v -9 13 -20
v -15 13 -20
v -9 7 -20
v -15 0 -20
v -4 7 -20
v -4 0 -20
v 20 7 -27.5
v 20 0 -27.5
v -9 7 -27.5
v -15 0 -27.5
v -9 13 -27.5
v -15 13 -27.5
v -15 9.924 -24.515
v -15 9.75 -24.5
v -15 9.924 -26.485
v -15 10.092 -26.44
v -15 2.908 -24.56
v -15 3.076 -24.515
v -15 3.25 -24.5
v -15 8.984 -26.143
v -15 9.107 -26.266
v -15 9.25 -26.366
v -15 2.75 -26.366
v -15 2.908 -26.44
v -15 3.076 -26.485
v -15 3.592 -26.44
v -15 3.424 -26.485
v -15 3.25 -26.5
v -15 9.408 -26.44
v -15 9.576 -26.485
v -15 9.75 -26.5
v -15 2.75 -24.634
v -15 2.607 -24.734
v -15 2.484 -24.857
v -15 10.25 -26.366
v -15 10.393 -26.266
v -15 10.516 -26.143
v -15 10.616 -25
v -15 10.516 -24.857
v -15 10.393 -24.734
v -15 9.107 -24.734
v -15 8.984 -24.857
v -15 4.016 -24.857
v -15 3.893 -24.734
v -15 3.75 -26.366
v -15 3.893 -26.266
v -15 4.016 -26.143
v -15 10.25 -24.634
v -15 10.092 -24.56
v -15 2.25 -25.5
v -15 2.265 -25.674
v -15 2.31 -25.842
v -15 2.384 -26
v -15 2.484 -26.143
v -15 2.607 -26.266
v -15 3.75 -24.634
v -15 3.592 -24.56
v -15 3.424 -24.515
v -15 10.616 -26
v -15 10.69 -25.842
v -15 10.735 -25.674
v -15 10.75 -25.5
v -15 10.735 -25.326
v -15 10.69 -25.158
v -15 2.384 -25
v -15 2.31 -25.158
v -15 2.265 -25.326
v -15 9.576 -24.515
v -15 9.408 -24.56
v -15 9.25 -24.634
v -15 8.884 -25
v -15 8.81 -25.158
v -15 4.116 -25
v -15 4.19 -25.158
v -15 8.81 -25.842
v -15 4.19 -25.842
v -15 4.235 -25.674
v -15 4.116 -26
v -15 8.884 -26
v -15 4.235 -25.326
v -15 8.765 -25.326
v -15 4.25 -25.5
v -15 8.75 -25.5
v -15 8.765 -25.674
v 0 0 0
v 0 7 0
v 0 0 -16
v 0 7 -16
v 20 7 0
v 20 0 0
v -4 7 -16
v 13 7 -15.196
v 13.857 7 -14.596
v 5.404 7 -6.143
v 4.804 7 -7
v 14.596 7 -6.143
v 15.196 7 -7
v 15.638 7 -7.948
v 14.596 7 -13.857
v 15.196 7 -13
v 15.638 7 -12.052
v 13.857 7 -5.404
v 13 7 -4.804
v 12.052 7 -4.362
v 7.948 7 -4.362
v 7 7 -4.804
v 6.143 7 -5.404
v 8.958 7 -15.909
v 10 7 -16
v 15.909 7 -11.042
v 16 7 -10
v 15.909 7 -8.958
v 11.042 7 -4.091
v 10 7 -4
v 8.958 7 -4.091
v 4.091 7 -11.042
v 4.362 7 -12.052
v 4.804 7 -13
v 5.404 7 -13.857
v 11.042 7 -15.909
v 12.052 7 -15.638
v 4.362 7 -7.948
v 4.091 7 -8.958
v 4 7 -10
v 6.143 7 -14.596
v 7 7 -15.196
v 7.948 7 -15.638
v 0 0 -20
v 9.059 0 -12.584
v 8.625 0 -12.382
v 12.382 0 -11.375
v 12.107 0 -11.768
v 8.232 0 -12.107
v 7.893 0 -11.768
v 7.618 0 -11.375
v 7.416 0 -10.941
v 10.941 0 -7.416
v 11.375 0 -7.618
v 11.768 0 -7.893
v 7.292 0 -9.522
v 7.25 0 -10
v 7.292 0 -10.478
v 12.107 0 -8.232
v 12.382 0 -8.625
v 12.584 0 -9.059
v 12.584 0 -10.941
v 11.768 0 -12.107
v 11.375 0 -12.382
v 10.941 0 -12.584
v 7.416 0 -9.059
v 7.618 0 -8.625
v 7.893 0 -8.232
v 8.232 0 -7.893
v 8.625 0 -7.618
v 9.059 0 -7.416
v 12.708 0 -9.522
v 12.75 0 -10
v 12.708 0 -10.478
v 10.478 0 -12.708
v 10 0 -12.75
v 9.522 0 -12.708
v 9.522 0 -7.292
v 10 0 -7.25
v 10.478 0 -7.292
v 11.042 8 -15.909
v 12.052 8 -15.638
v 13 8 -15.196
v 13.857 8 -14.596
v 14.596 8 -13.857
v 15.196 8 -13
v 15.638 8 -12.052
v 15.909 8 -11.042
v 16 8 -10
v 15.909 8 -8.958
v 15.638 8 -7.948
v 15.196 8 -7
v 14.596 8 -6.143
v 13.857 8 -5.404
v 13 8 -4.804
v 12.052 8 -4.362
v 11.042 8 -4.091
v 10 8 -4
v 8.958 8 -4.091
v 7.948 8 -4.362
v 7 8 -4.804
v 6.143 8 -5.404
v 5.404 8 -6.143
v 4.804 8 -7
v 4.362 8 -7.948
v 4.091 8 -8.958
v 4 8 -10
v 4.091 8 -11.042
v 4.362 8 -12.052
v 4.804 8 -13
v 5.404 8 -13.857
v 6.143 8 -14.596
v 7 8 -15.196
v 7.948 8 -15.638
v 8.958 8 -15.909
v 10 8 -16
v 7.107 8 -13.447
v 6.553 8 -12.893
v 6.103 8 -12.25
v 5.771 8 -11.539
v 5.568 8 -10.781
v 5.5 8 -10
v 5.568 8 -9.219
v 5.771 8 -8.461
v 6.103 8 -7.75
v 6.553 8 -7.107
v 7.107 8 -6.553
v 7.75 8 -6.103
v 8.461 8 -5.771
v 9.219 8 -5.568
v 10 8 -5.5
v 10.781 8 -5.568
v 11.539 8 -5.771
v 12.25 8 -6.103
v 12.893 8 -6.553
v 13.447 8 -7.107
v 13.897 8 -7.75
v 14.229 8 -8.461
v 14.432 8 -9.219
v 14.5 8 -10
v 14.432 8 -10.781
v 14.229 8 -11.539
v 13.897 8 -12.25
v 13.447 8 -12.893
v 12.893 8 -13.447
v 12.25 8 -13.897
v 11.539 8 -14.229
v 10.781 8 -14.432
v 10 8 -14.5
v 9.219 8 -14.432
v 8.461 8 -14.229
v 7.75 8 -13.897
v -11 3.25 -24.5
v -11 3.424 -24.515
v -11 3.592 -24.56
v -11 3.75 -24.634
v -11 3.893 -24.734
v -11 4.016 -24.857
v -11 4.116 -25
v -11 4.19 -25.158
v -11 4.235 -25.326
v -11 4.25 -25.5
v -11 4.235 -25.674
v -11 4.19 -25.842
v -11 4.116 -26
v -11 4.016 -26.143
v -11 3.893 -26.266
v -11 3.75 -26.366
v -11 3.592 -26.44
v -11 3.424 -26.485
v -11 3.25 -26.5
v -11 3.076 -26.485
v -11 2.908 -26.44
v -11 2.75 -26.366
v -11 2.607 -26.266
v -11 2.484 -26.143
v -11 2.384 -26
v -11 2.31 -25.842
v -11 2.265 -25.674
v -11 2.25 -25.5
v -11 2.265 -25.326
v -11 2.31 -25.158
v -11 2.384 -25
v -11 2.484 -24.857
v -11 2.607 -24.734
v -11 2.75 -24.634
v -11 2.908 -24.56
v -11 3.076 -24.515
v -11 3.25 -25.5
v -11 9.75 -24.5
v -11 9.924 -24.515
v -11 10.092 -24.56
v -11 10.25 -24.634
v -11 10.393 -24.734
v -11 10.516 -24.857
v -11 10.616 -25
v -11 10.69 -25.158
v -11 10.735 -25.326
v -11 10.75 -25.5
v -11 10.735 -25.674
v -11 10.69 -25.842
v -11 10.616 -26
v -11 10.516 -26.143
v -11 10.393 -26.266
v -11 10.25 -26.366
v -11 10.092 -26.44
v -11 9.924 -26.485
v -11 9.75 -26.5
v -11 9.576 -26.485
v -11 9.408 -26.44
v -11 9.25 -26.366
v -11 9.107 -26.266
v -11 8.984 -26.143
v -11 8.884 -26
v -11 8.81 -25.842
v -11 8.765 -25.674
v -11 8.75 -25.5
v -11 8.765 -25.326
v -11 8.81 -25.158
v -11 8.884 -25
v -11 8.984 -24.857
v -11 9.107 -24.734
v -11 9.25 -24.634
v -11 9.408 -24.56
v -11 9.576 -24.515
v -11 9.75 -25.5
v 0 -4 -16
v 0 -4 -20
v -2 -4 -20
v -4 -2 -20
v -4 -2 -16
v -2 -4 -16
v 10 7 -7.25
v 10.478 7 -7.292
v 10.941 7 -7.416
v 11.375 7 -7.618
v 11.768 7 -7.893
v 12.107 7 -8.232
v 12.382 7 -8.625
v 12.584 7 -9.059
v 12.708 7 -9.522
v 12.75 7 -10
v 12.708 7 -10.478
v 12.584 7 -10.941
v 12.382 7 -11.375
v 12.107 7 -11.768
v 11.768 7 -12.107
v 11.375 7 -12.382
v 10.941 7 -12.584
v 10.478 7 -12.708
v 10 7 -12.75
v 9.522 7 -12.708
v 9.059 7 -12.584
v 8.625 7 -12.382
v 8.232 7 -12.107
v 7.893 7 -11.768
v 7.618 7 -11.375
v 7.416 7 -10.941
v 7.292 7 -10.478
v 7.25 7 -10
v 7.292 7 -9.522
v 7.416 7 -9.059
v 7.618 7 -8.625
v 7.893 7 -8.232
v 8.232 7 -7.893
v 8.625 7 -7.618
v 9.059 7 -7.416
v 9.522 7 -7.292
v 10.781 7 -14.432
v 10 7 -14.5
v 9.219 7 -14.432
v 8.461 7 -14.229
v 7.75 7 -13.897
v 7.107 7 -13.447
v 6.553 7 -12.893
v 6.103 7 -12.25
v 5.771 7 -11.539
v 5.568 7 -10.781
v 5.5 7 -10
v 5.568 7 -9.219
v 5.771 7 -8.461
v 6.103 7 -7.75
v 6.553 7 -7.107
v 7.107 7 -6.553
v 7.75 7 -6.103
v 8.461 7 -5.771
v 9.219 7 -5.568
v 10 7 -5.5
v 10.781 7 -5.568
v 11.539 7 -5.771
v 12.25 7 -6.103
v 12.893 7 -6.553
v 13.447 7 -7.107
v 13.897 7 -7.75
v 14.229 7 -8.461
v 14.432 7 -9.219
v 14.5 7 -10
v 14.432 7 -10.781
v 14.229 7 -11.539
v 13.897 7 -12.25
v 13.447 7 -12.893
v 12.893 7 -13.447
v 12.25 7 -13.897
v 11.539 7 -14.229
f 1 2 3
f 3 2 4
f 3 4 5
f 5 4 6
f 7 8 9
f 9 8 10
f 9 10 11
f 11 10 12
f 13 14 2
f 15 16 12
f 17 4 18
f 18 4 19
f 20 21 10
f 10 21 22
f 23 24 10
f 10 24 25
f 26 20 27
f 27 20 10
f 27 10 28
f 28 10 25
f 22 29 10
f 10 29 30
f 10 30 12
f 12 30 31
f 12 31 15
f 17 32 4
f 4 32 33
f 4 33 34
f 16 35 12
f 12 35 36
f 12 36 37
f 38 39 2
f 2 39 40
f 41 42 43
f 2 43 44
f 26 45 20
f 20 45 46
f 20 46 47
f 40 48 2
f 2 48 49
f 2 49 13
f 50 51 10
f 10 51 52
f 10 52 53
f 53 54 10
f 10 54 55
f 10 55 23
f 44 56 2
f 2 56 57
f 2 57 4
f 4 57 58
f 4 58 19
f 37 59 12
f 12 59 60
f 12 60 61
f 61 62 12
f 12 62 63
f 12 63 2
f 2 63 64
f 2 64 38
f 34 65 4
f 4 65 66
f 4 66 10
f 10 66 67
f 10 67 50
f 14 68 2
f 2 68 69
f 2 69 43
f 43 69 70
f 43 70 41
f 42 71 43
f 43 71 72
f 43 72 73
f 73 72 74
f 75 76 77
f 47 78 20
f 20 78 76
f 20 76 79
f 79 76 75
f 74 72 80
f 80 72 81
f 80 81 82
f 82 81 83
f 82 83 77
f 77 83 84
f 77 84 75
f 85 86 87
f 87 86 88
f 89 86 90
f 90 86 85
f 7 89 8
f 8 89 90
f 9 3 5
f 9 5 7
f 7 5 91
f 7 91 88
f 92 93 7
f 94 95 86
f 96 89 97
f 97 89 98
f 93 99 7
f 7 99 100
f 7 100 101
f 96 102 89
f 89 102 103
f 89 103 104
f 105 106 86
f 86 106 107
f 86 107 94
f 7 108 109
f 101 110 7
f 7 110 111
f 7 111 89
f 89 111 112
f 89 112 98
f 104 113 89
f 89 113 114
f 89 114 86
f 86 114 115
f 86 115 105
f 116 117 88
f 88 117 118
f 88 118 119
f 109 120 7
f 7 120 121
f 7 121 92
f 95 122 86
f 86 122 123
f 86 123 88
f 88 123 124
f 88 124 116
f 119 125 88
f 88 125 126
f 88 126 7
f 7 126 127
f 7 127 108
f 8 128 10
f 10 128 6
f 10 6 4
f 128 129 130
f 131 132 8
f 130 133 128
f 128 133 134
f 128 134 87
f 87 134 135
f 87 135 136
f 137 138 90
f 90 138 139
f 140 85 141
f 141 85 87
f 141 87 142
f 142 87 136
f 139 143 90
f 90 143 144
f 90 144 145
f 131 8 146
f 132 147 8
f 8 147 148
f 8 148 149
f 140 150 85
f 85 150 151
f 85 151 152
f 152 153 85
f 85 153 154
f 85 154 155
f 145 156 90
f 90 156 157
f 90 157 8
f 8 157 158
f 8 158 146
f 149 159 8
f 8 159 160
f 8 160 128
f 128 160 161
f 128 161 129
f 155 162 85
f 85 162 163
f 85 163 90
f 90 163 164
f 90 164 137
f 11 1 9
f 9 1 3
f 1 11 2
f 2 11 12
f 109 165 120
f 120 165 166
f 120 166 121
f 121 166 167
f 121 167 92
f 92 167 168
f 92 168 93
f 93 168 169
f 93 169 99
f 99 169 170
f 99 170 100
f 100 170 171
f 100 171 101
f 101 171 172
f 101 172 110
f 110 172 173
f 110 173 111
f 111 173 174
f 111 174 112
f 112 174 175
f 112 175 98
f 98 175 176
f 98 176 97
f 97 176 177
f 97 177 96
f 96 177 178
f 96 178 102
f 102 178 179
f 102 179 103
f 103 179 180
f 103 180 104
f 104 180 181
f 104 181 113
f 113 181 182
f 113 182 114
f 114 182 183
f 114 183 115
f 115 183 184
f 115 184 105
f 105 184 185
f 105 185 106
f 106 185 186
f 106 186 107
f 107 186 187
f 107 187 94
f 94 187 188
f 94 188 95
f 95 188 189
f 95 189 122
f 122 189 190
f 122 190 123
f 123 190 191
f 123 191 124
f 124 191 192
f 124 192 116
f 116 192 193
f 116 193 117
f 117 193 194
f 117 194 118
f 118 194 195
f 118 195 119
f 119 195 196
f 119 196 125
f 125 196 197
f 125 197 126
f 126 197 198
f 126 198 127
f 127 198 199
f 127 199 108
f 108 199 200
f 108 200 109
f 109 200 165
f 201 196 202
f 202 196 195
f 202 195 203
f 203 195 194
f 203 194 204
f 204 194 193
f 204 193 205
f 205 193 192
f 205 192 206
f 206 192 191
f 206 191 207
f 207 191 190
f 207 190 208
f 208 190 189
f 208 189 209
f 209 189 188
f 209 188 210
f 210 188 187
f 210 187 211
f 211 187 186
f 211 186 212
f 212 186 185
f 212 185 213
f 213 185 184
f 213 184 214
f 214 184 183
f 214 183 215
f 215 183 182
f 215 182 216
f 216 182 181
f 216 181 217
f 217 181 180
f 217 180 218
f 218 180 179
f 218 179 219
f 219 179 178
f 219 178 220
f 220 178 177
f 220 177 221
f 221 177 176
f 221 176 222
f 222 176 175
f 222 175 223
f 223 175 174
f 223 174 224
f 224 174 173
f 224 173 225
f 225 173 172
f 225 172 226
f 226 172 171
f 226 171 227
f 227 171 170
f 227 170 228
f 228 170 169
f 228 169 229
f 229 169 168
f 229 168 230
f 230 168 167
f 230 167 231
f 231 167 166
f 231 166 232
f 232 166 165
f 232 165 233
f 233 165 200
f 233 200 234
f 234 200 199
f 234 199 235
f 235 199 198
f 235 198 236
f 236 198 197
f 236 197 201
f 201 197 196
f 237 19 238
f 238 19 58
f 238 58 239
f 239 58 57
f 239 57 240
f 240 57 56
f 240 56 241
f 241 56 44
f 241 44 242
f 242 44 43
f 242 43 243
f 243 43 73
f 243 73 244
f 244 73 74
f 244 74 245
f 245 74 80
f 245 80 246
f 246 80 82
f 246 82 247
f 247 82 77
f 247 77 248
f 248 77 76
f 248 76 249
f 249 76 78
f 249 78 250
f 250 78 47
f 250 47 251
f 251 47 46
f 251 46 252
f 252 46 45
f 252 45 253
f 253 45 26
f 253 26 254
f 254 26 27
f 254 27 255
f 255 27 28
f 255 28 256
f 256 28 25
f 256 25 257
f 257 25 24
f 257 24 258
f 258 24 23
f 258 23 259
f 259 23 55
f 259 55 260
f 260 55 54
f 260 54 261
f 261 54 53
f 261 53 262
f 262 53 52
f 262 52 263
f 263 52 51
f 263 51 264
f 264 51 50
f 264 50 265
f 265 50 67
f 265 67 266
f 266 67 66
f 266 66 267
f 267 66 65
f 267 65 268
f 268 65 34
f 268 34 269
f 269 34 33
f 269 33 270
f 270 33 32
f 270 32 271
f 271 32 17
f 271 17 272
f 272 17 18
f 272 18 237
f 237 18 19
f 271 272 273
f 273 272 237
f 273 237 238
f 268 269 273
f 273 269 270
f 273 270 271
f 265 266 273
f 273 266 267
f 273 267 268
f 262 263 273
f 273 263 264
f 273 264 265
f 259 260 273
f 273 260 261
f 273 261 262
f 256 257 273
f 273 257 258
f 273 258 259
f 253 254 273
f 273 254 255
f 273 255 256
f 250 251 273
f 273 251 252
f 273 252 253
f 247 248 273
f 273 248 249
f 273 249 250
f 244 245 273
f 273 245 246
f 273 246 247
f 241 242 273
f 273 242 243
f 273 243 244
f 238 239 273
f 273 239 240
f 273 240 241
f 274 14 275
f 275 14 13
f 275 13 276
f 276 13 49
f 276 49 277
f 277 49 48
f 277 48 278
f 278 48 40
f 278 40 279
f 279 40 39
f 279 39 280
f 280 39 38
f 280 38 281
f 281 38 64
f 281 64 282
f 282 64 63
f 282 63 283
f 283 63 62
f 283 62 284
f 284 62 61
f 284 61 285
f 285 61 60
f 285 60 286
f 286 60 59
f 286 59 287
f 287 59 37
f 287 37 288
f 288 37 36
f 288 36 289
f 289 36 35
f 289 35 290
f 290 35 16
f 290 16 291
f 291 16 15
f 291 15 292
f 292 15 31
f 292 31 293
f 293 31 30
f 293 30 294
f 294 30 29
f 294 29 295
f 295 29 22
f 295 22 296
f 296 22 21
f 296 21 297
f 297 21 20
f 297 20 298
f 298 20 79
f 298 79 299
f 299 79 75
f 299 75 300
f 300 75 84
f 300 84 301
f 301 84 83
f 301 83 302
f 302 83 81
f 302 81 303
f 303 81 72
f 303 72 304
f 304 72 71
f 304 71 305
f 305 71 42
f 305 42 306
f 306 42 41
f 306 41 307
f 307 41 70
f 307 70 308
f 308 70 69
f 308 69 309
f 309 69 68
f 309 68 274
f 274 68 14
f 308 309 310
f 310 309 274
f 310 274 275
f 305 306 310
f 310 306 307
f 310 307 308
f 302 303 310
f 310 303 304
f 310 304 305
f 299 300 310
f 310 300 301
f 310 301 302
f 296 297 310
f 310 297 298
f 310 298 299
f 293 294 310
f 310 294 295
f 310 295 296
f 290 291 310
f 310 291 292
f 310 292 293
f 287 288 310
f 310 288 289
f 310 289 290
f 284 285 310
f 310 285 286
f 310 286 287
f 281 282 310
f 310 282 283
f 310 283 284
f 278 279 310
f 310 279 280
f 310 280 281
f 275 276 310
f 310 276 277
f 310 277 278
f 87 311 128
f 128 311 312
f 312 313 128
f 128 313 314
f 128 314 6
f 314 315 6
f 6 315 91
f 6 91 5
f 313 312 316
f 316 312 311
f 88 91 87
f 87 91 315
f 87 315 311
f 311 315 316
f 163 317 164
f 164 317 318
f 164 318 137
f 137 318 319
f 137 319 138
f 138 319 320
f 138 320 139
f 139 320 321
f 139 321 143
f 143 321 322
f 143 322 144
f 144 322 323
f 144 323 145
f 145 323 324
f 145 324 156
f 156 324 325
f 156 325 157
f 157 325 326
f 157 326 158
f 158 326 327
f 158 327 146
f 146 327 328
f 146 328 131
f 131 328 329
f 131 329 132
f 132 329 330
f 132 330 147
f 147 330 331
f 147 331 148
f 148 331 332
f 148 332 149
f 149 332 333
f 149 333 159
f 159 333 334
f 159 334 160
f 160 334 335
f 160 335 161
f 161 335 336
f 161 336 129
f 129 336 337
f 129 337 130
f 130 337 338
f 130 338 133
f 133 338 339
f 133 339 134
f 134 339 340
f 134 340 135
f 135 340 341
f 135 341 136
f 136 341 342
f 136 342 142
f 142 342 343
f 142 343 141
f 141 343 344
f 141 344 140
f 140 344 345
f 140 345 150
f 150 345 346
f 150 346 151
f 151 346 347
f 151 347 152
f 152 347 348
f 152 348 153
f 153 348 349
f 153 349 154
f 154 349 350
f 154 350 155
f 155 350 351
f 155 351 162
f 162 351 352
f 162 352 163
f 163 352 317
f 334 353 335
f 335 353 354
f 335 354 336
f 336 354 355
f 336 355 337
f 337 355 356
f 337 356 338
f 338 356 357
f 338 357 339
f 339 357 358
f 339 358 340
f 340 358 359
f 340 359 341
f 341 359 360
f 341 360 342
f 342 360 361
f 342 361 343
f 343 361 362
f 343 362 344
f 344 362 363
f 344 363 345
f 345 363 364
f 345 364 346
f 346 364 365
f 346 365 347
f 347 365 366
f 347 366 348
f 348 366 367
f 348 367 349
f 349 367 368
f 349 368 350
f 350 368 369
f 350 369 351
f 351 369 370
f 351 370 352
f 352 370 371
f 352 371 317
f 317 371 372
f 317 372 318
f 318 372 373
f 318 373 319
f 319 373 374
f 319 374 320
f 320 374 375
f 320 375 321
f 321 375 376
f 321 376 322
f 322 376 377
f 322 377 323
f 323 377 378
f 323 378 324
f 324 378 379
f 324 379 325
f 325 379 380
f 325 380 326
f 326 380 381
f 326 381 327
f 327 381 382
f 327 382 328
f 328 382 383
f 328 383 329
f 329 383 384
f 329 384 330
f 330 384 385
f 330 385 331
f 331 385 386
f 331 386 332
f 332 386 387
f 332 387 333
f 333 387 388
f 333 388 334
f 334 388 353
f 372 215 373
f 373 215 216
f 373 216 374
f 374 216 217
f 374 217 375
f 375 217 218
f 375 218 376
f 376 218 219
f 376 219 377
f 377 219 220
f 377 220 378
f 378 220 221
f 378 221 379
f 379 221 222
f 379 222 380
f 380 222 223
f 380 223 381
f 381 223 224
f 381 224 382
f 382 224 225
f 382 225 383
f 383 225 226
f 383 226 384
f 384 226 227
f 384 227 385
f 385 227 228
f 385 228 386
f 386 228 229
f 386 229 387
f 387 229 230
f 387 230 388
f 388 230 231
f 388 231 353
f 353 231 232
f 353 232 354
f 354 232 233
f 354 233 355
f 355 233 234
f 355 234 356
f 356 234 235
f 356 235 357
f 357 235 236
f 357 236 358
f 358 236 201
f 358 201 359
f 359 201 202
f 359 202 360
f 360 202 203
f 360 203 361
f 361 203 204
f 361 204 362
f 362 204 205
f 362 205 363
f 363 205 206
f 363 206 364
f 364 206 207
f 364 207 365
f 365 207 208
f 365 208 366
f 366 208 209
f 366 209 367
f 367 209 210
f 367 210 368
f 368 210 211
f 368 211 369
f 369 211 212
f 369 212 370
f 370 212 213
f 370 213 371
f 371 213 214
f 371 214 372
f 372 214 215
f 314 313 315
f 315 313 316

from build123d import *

# Parameters (mm, degrees)
SKETCH1_W                       = 15
SKETCH1_H                       = 7.5
SKETCH1_W_2                     = 20
SKETCH1_H_2                     = 27.5
BOSS_EXTRUDE1_DEPTH             = 7
SKETCH2_W                       = 6
SKETCH2_H                       = 7.5
BOSS_EXTRUDE2_DEPTH             = 6
SKETCH8_R                       = 6
BOSS_EXTRUDE4_DEPTH             = 1
SKETCH6_R                       = 1
CUT_EXTRUDE1_DEPTH              = 4
SKETCH7_W                       = 4
SKETCH7_H                       = 11
BOSS_EXTRUDE3_DEPTH             = 4
CBORE_FOR_M5_SBHCS2_D           = 5.5
CBORE_FOR_M5_SBHCS2_CBORE_D     = 9
CBORE_FOR_M5_SBHCS2_CBORE_DEPTH = 1
CHAMFER1_SIZE                   = 2


with BuildPart() as part:
    # Sketch1 → Boss-Extrude1 (new body)
    with BuildSketch(Plane(origin=(0, 0, 0), x_dir=(1, 0, 0), z_dir=(0, 1, 0))):
        with Locations((-7.5, 23.75)):
            Rectangle(SKETCH1_W, SKETCH1_H)
        with Locations((10, 13.75)):
            Rectangle(SKETCH1_W_2, SKETCH1_H_2)
    extrude(amount=BOSS_EXTRUDE1_DEPTH)

    # Sketch2 → Boss-Extrude2 (add)
    with BuildSketch(Plane(origin=(0, 7, 0), x_dir=(1, 0, 0), z_dir=(0, 1, 0))):
        with Locations((-12, 23.75)):
            Rectangle(SKETCH2_W, SKETCH2_H)
    extrude(amount=BOSS_EXTRUDE2_DEPTH)

    # Sketch8 → Boss-Extrude4 (add)
    with BuildSketch(Plane(origin=(0, 7, 0), x_dir=(1, 0, 0), z_dir=(0, 1, 0))):
        with Locations((10, 10)):
            Circle(SKETCH8_R)
    extrude(amount=BOSS_EXTRUDE4_DEPTH)

    # Sketch6 → Cut-Extrude1 (cut)
    with BuildSketch(Plane.ZY.offset(15)):
        with Locations((-25.5, 9.75)):
            Circle(SKETCH6_R)
        with Locations((-25.5, 3.25)):
            Circle(SKETCH6_R)
    extrude(amount=-CUT_EXTRUDE1_DEPTH, mode=Mode.SUBTRACT)

    # Sketch7 → Boss-Extrude3 (add)
    with BuildSketch(Plane.XY.offset(-20)):
        with Locations((-2, 1.5)):
            Rectangle(SKETCH7_W, SKETCH7_H)
    extrude(amount=BOSS_EXTRUDE3_DEPTH)

    # CBORE for M5 SBHCS2 (through all)
    with Locations(Plane(origin=(0, 8, 0), x_dir=(1, 0, 0), z_dir=(0, 1, 0))):
        with Locations((10, 10)):
            CounterBoreHole(CBORE_FOR_M5_SBHCS2_D / 2, CBORE_FOR_M5_SBHCS2_CBORE_D / 2, CBORE_FOR_M5_SBHCS2_CBORE_DEPTH)

    # Chamfer1
    chamfer1_edges = [part.edges().sort_by_distance(p)[0] for p in [
        (-4, -4, -18),
    ]]
    chamfer(chamfer1_edges, length=CHAMFER1_SIZE)


solid = part.part
